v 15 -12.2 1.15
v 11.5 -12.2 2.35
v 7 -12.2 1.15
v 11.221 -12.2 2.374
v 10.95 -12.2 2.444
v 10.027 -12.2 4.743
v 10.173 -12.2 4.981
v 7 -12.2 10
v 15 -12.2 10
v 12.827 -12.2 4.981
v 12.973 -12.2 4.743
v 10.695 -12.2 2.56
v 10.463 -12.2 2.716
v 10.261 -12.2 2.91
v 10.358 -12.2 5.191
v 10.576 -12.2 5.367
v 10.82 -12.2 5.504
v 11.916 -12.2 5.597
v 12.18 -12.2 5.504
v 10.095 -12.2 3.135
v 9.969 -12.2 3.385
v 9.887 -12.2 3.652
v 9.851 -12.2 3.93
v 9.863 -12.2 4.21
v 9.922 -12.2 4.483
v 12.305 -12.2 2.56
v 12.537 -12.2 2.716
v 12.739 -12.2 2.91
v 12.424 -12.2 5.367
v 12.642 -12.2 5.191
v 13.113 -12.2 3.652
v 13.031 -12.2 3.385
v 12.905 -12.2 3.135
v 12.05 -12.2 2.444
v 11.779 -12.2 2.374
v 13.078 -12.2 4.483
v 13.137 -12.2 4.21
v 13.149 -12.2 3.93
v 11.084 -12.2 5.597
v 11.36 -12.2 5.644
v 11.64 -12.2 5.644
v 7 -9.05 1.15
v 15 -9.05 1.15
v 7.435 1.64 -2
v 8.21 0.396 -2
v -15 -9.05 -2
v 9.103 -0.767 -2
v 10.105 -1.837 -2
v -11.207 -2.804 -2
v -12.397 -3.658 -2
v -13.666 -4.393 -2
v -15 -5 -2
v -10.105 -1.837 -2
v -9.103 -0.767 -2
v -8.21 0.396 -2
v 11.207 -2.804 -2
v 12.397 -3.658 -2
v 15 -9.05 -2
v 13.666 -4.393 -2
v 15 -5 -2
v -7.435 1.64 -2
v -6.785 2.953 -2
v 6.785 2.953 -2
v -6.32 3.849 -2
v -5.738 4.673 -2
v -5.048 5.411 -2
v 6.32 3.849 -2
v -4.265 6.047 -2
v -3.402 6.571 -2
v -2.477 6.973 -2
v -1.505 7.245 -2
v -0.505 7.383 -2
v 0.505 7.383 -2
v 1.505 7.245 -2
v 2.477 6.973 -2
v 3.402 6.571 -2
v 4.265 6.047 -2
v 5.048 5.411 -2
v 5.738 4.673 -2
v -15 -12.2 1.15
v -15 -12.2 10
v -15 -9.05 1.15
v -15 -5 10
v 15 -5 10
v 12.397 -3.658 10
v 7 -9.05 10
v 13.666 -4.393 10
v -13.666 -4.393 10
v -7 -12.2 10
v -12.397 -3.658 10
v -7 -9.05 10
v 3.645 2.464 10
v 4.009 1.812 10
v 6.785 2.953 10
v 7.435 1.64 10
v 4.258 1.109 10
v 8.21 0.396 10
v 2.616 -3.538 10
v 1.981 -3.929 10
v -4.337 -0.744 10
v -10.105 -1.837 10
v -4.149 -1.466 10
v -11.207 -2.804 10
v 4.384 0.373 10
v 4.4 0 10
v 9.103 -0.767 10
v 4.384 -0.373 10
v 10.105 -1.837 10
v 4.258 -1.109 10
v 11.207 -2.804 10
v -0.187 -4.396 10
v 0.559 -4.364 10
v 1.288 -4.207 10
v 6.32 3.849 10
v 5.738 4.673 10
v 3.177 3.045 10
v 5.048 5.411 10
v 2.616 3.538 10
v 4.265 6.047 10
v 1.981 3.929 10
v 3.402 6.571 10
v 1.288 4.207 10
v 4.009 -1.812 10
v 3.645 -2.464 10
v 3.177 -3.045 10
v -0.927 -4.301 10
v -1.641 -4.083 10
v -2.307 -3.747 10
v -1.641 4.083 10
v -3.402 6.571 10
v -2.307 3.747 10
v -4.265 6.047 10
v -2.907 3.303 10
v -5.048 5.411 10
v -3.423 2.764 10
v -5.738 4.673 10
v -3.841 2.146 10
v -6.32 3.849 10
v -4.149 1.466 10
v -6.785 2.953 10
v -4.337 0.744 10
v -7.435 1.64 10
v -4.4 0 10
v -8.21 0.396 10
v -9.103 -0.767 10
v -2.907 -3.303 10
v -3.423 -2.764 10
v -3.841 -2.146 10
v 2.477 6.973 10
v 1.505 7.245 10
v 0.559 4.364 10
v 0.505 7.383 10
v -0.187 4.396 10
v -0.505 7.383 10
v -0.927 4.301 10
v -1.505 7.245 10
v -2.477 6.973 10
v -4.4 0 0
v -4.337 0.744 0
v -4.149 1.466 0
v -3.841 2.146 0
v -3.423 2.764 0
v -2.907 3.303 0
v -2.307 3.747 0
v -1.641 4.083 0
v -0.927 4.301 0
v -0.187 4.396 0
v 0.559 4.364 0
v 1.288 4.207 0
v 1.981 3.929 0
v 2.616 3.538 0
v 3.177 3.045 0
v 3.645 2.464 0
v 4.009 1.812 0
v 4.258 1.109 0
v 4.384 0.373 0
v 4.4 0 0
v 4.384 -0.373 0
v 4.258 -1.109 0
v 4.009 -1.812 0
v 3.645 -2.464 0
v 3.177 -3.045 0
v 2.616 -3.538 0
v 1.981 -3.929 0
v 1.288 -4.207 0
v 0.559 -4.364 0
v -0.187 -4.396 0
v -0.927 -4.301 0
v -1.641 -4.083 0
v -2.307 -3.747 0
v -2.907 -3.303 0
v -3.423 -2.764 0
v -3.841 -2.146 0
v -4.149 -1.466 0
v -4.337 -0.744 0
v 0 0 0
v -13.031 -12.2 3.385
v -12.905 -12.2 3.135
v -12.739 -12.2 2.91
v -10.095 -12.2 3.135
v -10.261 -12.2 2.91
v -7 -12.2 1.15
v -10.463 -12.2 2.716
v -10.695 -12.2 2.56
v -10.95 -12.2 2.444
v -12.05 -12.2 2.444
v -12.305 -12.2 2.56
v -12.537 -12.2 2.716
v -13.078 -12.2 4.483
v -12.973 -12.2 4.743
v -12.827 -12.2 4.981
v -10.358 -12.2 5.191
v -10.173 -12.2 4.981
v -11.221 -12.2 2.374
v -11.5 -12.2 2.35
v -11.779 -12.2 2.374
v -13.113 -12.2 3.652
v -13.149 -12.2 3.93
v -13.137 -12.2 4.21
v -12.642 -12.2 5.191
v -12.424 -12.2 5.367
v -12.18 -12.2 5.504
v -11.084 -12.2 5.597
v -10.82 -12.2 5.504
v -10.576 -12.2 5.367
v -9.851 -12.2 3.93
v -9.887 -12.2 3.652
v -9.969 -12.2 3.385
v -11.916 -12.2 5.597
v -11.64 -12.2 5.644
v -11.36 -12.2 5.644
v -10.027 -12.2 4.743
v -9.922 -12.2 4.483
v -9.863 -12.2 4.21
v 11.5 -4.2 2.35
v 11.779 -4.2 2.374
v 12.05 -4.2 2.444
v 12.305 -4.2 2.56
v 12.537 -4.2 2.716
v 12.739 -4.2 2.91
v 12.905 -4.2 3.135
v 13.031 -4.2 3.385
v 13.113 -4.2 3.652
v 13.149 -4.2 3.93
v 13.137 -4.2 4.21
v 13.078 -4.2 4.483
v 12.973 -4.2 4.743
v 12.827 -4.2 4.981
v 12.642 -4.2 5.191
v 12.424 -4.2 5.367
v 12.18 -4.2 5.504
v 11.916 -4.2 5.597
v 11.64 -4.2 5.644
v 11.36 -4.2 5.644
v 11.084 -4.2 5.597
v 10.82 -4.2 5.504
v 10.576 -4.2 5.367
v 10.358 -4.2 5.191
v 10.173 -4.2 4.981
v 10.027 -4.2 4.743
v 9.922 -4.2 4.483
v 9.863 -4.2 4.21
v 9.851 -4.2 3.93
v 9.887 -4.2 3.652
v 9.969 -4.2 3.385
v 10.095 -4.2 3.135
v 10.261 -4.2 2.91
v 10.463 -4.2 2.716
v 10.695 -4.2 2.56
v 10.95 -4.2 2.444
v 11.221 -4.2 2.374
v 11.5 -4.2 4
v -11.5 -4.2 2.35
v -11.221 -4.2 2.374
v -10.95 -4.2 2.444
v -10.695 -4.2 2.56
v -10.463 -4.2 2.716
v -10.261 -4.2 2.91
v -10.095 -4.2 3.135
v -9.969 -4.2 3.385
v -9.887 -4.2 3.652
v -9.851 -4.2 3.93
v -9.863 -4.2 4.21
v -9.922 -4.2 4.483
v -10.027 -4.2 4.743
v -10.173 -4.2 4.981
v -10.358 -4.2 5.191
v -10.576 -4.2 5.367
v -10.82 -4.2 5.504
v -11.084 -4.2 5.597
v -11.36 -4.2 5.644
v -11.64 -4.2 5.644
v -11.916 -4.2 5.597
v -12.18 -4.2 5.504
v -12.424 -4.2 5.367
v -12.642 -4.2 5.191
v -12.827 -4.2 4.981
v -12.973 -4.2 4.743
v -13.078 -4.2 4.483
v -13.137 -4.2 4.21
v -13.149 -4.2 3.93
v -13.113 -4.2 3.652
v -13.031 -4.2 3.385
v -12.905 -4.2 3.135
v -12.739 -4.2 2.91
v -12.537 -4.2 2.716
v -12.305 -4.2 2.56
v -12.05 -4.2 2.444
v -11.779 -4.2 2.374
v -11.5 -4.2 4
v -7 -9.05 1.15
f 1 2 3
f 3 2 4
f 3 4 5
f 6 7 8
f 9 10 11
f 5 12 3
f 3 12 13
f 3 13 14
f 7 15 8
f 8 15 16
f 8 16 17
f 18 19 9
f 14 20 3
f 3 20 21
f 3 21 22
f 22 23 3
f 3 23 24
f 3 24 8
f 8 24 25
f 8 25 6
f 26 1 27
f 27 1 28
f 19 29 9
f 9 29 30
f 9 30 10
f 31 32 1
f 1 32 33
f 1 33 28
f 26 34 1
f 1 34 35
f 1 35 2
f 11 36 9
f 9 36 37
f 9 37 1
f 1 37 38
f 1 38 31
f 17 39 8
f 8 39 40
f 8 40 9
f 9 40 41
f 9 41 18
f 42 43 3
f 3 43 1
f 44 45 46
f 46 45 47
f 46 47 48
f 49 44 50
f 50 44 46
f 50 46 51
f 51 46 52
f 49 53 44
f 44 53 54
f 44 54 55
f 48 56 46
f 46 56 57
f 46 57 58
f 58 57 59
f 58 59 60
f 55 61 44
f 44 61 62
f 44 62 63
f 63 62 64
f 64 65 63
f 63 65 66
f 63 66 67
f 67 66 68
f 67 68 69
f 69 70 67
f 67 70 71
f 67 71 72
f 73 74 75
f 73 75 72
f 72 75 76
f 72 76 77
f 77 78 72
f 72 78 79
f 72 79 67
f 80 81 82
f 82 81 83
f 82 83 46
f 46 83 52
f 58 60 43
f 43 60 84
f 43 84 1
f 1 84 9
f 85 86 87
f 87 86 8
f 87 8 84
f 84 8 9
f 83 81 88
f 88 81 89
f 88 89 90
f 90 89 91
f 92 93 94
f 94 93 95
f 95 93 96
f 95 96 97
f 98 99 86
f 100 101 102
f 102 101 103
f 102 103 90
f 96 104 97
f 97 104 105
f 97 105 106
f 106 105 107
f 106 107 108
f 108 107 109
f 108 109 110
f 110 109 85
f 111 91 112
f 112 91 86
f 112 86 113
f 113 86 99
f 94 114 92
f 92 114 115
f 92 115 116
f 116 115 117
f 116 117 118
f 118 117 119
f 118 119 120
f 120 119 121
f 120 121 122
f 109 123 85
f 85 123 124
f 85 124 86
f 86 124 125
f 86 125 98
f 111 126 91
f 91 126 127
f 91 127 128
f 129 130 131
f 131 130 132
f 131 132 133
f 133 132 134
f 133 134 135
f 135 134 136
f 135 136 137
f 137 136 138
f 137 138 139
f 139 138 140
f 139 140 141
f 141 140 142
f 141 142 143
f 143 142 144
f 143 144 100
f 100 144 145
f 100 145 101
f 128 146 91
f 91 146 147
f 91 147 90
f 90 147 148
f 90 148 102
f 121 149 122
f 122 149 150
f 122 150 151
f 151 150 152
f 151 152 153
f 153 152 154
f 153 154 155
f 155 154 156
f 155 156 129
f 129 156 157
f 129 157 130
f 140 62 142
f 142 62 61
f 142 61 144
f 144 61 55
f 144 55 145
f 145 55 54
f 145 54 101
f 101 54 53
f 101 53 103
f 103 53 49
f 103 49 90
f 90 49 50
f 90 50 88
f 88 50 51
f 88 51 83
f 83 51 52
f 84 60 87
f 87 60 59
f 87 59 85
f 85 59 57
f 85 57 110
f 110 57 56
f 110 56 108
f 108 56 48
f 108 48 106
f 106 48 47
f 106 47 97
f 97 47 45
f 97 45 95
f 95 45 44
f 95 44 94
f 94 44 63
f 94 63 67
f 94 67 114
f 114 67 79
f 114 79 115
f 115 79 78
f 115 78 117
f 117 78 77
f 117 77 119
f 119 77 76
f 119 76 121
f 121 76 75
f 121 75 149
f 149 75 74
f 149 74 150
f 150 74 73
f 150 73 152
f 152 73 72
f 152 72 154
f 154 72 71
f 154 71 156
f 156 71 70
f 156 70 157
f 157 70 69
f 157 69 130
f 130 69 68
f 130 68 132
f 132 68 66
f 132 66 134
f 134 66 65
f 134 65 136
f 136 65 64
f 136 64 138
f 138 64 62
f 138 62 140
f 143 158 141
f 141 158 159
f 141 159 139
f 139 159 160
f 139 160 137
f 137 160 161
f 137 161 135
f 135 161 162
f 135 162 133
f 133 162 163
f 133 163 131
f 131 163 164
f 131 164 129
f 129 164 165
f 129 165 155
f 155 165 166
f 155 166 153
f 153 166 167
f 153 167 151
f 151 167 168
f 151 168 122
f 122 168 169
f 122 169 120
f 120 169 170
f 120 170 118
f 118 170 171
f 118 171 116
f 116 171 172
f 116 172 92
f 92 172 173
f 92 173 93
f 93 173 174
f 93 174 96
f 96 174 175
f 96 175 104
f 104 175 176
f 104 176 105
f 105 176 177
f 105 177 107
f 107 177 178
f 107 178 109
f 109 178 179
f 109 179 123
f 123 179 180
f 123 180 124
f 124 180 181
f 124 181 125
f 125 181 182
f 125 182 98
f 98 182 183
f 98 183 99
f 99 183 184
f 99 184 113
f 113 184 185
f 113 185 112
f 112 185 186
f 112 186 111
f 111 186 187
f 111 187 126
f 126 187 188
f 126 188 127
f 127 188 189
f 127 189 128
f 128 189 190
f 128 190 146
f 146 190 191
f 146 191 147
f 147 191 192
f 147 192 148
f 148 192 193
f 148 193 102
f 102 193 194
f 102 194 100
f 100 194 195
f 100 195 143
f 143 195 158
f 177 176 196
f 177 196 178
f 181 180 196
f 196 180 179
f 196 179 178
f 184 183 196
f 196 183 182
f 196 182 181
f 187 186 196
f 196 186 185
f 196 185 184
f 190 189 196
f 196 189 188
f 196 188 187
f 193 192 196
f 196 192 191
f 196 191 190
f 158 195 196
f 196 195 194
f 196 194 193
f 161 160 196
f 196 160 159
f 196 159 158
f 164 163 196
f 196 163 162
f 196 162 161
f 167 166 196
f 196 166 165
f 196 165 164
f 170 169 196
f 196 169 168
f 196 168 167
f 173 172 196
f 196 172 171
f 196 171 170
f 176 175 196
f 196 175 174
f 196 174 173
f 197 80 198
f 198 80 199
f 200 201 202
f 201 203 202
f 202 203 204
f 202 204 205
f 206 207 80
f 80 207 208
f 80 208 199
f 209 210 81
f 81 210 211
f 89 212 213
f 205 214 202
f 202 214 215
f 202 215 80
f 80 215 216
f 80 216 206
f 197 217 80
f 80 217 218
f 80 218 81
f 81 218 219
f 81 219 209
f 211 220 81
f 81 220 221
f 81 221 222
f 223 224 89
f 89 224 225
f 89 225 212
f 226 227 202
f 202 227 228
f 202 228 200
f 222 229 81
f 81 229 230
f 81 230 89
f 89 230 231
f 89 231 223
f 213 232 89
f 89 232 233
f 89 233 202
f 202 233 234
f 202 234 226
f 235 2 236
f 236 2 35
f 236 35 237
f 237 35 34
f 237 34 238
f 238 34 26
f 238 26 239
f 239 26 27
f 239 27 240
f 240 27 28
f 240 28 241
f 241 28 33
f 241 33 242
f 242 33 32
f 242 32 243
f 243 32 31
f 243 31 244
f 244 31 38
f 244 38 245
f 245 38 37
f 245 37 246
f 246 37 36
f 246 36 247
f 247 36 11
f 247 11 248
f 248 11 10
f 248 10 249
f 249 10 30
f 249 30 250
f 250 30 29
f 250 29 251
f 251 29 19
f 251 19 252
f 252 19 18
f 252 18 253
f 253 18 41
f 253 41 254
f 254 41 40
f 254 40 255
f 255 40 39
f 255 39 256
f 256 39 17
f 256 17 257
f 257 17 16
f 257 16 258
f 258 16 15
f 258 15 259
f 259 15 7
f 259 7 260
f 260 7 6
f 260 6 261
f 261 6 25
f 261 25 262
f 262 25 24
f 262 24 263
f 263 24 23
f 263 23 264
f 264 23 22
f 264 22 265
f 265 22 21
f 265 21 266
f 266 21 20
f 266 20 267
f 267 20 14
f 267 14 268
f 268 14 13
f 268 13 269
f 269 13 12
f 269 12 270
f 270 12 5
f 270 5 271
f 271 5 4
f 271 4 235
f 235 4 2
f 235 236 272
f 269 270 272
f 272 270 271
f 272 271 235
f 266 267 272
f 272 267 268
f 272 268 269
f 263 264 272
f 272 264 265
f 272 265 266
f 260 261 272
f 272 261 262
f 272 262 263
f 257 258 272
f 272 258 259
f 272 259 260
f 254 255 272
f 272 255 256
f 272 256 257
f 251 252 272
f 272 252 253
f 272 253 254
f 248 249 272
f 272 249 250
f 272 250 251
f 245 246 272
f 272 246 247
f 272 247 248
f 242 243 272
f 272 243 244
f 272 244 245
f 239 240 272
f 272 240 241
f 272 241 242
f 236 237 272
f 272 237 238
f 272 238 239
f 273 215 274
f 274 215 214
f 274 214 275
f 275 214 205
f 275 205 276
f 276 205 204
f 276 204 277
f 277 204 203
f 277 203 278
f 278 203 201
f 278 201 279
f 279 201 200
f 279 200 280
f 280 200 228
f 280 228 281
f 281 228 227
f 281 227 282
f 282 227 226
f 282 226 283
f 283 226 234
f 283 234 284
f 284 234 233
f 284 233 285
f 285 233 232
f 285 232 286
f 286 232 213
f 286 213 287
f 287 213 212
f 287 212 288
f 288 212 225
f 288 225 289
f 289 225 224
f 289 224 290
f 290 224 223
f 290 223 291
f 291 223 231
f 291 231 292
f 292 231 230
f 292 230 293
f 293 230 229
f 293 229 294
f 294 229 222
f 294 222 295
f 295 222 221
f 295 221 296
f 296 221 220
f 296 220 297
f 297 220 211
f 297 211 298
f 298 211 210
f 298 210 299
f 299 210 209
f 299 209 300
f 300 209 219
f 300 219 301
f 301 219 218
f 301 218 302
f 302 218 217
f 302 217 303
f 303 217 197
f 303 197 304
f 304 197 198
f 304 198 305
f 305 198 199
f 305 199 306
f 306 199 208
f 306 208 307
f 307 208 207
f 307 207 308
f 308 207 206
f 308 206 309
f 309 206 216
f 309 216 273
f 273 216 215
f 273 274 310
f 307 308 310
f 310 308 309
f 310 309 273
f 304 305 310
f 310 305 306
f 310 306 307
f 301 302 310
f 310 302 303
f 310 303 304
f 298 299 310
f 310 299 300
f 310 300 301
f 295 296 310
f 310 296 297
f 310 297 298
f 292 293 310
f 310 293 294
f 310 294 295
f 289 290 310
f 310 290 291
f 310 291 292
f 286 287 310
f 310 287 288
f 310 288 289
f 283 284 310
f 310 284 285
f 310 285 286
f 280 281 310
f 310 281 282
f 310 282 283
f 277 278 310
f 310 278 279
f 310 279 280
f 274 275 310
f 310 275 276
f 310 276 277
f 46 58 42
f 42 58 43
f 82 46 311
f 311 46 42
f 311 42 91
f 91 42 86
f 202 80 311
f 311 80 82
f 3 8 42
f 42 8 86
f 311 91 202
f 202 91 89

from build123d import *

# Parameters (mm, degrees)
SKETCH1_R               = 4.4
BOSS_EXTRUDE1_DEPTH     = 10
SKETCH1_2_R             = 4.4
BOSS_EXTRUDE2_DEPTH     = 2
SKETCH3_W               = 30
SKETCH3_H               = 12
BOSS_EXTRUDE4_DEPTH     = 7.2
CUT_EXTRUDE2_START      = -12.2
SKETCH2_R               = 1.65
CUT_EXTRUDE2_DEPTH      = 8
SKETCH5_W               = 30
SKETCH5_H               = 3.15
CUT_EXTRUDE3_DEPTH      = 23.756098084
CUT_EXTRUDE3_DEPTH_BACK = 3.15
SKETCH6_W               = 14
SKETCH6_H               = 3.15
CUT_EXTRUDE4_DEPTH      = 23.756098084
CUT_EXTRUDE4_DEPTH_BACK = 23.756098084


with BuildPart() as part:
    # Sketch1 → Boss-Extrude1 (new body)
    with BuildSketch(Plane.XY):
        with BuildLine():
            Line((-15, -5), (15, -5))
            ThreePointArc((15, -5), (10.104984149, -1.836764635), (6.785093744, 2.953388374))
            ThreePointArc((6.785093744, 2.953388374), (0, 7.4), (-6.785093744, 2.953388374))
            ThreePointArc((-6.785093744, 2.953388374), (-10.104984149, -1.836764635), (-15, -5))
        make_face()
        Circle(SKETCH1_R, mode=Mode.SUBTRACT)
    extrude(amount=BOSS_EXTRUDE1_DEPTH)

    # Sketch1<2> → Boss-Extrude2 (add)
    with BuildSketch(Plane.XY):
        with BuildLine():
            ThreePointArc((-6.785093744, 2.953388374), (0, 7.4), (6.785093744, 2.953388374))
            ThreePointArc((6.785093744, 2.953388374), (10.104984149, -1.836764635), (15, -5))
            Line((15, -5), (-15, -5))
            ThreePointArc((-15, -5), (-10.104984149, -1.836764635), (-6.785093744, 2.953388374))
        make_face()
        Circle(SKETCH1_2_R, mode=Mode.SUBTRACT)
        Circle(SKETCH1_2_R)
    extrude(amount=-BOSS_EXTRUDE2_DEPTH)

    # Sketch3 → Boss-Extrude4 (add)
    with BuildSketch(Plane.XZ.offset(5)):
        with Locations((0, 4)):
            Rectangle(SKETCH3_W, SKETCH3_H)
    extrude(amount=BOSS_EXTRUDE4_DEPTH)

    # Sketch2 → Cut-Extrude2 (cut)
    with BuildSketch(Plane(origin=(0, 0, 0), x_dir=(1, 0, 0), z_dir=(0, 1, 0)).offset(CUT_EXTRUDE2_START)):
        with Locations(Location((-11.5, -4, 0), (0, 0, 90))):
            Circle(SKETCH2_R)
        with Locations(Location((11.5, -4, 0), (0, 0, 90))):
            Circle(SKETCH2_R)
    extrude(amount=CUT_EXTRUDE2_DEPTH, mode=Mode.SUBTRACT)

    # Sketch5 → Cut-Extrude3 (cut, two sides)
    with BuildSketch(Plane(origin=(0, 0, -2), x_dir=(-1, 0, 0), z_dir=(0, 0, -1))) as cut_extrude3_sk:
        with Locations((0, -10.625)):
            Rectangle(SKETCH5_W, SKETCH5_H)
    extrude(amount=CUT_EXTRUDE3_DEPTH, mode=Mode.SUBTRACT)
    extrude(cut_extrude3_sk.sketch, amount=-CUT_EXTRUDE3_DEPTH_BACK, mode=Mode.SUBTRACT)

    # Sketch6 → Cut-Extrude4 (cut, two sides)
    with BuildSketch(Plane.XY.offset(10)) as cut_extrude4_sk:
        with Locations((0, -10.625)):
            Rectangle(SKETCH6_W, SKETCH6_H)
    extrude(amount=CUT_EXTRUDE4_DEPTH, mode=Mode.SUBTRACT)
    extrude(cut_extrude4_sk.sketch, amount=-CUT_EXTRUDE4_DEPTH_BACK, mode=Mode.SUBTRACT)


solid = part.part
